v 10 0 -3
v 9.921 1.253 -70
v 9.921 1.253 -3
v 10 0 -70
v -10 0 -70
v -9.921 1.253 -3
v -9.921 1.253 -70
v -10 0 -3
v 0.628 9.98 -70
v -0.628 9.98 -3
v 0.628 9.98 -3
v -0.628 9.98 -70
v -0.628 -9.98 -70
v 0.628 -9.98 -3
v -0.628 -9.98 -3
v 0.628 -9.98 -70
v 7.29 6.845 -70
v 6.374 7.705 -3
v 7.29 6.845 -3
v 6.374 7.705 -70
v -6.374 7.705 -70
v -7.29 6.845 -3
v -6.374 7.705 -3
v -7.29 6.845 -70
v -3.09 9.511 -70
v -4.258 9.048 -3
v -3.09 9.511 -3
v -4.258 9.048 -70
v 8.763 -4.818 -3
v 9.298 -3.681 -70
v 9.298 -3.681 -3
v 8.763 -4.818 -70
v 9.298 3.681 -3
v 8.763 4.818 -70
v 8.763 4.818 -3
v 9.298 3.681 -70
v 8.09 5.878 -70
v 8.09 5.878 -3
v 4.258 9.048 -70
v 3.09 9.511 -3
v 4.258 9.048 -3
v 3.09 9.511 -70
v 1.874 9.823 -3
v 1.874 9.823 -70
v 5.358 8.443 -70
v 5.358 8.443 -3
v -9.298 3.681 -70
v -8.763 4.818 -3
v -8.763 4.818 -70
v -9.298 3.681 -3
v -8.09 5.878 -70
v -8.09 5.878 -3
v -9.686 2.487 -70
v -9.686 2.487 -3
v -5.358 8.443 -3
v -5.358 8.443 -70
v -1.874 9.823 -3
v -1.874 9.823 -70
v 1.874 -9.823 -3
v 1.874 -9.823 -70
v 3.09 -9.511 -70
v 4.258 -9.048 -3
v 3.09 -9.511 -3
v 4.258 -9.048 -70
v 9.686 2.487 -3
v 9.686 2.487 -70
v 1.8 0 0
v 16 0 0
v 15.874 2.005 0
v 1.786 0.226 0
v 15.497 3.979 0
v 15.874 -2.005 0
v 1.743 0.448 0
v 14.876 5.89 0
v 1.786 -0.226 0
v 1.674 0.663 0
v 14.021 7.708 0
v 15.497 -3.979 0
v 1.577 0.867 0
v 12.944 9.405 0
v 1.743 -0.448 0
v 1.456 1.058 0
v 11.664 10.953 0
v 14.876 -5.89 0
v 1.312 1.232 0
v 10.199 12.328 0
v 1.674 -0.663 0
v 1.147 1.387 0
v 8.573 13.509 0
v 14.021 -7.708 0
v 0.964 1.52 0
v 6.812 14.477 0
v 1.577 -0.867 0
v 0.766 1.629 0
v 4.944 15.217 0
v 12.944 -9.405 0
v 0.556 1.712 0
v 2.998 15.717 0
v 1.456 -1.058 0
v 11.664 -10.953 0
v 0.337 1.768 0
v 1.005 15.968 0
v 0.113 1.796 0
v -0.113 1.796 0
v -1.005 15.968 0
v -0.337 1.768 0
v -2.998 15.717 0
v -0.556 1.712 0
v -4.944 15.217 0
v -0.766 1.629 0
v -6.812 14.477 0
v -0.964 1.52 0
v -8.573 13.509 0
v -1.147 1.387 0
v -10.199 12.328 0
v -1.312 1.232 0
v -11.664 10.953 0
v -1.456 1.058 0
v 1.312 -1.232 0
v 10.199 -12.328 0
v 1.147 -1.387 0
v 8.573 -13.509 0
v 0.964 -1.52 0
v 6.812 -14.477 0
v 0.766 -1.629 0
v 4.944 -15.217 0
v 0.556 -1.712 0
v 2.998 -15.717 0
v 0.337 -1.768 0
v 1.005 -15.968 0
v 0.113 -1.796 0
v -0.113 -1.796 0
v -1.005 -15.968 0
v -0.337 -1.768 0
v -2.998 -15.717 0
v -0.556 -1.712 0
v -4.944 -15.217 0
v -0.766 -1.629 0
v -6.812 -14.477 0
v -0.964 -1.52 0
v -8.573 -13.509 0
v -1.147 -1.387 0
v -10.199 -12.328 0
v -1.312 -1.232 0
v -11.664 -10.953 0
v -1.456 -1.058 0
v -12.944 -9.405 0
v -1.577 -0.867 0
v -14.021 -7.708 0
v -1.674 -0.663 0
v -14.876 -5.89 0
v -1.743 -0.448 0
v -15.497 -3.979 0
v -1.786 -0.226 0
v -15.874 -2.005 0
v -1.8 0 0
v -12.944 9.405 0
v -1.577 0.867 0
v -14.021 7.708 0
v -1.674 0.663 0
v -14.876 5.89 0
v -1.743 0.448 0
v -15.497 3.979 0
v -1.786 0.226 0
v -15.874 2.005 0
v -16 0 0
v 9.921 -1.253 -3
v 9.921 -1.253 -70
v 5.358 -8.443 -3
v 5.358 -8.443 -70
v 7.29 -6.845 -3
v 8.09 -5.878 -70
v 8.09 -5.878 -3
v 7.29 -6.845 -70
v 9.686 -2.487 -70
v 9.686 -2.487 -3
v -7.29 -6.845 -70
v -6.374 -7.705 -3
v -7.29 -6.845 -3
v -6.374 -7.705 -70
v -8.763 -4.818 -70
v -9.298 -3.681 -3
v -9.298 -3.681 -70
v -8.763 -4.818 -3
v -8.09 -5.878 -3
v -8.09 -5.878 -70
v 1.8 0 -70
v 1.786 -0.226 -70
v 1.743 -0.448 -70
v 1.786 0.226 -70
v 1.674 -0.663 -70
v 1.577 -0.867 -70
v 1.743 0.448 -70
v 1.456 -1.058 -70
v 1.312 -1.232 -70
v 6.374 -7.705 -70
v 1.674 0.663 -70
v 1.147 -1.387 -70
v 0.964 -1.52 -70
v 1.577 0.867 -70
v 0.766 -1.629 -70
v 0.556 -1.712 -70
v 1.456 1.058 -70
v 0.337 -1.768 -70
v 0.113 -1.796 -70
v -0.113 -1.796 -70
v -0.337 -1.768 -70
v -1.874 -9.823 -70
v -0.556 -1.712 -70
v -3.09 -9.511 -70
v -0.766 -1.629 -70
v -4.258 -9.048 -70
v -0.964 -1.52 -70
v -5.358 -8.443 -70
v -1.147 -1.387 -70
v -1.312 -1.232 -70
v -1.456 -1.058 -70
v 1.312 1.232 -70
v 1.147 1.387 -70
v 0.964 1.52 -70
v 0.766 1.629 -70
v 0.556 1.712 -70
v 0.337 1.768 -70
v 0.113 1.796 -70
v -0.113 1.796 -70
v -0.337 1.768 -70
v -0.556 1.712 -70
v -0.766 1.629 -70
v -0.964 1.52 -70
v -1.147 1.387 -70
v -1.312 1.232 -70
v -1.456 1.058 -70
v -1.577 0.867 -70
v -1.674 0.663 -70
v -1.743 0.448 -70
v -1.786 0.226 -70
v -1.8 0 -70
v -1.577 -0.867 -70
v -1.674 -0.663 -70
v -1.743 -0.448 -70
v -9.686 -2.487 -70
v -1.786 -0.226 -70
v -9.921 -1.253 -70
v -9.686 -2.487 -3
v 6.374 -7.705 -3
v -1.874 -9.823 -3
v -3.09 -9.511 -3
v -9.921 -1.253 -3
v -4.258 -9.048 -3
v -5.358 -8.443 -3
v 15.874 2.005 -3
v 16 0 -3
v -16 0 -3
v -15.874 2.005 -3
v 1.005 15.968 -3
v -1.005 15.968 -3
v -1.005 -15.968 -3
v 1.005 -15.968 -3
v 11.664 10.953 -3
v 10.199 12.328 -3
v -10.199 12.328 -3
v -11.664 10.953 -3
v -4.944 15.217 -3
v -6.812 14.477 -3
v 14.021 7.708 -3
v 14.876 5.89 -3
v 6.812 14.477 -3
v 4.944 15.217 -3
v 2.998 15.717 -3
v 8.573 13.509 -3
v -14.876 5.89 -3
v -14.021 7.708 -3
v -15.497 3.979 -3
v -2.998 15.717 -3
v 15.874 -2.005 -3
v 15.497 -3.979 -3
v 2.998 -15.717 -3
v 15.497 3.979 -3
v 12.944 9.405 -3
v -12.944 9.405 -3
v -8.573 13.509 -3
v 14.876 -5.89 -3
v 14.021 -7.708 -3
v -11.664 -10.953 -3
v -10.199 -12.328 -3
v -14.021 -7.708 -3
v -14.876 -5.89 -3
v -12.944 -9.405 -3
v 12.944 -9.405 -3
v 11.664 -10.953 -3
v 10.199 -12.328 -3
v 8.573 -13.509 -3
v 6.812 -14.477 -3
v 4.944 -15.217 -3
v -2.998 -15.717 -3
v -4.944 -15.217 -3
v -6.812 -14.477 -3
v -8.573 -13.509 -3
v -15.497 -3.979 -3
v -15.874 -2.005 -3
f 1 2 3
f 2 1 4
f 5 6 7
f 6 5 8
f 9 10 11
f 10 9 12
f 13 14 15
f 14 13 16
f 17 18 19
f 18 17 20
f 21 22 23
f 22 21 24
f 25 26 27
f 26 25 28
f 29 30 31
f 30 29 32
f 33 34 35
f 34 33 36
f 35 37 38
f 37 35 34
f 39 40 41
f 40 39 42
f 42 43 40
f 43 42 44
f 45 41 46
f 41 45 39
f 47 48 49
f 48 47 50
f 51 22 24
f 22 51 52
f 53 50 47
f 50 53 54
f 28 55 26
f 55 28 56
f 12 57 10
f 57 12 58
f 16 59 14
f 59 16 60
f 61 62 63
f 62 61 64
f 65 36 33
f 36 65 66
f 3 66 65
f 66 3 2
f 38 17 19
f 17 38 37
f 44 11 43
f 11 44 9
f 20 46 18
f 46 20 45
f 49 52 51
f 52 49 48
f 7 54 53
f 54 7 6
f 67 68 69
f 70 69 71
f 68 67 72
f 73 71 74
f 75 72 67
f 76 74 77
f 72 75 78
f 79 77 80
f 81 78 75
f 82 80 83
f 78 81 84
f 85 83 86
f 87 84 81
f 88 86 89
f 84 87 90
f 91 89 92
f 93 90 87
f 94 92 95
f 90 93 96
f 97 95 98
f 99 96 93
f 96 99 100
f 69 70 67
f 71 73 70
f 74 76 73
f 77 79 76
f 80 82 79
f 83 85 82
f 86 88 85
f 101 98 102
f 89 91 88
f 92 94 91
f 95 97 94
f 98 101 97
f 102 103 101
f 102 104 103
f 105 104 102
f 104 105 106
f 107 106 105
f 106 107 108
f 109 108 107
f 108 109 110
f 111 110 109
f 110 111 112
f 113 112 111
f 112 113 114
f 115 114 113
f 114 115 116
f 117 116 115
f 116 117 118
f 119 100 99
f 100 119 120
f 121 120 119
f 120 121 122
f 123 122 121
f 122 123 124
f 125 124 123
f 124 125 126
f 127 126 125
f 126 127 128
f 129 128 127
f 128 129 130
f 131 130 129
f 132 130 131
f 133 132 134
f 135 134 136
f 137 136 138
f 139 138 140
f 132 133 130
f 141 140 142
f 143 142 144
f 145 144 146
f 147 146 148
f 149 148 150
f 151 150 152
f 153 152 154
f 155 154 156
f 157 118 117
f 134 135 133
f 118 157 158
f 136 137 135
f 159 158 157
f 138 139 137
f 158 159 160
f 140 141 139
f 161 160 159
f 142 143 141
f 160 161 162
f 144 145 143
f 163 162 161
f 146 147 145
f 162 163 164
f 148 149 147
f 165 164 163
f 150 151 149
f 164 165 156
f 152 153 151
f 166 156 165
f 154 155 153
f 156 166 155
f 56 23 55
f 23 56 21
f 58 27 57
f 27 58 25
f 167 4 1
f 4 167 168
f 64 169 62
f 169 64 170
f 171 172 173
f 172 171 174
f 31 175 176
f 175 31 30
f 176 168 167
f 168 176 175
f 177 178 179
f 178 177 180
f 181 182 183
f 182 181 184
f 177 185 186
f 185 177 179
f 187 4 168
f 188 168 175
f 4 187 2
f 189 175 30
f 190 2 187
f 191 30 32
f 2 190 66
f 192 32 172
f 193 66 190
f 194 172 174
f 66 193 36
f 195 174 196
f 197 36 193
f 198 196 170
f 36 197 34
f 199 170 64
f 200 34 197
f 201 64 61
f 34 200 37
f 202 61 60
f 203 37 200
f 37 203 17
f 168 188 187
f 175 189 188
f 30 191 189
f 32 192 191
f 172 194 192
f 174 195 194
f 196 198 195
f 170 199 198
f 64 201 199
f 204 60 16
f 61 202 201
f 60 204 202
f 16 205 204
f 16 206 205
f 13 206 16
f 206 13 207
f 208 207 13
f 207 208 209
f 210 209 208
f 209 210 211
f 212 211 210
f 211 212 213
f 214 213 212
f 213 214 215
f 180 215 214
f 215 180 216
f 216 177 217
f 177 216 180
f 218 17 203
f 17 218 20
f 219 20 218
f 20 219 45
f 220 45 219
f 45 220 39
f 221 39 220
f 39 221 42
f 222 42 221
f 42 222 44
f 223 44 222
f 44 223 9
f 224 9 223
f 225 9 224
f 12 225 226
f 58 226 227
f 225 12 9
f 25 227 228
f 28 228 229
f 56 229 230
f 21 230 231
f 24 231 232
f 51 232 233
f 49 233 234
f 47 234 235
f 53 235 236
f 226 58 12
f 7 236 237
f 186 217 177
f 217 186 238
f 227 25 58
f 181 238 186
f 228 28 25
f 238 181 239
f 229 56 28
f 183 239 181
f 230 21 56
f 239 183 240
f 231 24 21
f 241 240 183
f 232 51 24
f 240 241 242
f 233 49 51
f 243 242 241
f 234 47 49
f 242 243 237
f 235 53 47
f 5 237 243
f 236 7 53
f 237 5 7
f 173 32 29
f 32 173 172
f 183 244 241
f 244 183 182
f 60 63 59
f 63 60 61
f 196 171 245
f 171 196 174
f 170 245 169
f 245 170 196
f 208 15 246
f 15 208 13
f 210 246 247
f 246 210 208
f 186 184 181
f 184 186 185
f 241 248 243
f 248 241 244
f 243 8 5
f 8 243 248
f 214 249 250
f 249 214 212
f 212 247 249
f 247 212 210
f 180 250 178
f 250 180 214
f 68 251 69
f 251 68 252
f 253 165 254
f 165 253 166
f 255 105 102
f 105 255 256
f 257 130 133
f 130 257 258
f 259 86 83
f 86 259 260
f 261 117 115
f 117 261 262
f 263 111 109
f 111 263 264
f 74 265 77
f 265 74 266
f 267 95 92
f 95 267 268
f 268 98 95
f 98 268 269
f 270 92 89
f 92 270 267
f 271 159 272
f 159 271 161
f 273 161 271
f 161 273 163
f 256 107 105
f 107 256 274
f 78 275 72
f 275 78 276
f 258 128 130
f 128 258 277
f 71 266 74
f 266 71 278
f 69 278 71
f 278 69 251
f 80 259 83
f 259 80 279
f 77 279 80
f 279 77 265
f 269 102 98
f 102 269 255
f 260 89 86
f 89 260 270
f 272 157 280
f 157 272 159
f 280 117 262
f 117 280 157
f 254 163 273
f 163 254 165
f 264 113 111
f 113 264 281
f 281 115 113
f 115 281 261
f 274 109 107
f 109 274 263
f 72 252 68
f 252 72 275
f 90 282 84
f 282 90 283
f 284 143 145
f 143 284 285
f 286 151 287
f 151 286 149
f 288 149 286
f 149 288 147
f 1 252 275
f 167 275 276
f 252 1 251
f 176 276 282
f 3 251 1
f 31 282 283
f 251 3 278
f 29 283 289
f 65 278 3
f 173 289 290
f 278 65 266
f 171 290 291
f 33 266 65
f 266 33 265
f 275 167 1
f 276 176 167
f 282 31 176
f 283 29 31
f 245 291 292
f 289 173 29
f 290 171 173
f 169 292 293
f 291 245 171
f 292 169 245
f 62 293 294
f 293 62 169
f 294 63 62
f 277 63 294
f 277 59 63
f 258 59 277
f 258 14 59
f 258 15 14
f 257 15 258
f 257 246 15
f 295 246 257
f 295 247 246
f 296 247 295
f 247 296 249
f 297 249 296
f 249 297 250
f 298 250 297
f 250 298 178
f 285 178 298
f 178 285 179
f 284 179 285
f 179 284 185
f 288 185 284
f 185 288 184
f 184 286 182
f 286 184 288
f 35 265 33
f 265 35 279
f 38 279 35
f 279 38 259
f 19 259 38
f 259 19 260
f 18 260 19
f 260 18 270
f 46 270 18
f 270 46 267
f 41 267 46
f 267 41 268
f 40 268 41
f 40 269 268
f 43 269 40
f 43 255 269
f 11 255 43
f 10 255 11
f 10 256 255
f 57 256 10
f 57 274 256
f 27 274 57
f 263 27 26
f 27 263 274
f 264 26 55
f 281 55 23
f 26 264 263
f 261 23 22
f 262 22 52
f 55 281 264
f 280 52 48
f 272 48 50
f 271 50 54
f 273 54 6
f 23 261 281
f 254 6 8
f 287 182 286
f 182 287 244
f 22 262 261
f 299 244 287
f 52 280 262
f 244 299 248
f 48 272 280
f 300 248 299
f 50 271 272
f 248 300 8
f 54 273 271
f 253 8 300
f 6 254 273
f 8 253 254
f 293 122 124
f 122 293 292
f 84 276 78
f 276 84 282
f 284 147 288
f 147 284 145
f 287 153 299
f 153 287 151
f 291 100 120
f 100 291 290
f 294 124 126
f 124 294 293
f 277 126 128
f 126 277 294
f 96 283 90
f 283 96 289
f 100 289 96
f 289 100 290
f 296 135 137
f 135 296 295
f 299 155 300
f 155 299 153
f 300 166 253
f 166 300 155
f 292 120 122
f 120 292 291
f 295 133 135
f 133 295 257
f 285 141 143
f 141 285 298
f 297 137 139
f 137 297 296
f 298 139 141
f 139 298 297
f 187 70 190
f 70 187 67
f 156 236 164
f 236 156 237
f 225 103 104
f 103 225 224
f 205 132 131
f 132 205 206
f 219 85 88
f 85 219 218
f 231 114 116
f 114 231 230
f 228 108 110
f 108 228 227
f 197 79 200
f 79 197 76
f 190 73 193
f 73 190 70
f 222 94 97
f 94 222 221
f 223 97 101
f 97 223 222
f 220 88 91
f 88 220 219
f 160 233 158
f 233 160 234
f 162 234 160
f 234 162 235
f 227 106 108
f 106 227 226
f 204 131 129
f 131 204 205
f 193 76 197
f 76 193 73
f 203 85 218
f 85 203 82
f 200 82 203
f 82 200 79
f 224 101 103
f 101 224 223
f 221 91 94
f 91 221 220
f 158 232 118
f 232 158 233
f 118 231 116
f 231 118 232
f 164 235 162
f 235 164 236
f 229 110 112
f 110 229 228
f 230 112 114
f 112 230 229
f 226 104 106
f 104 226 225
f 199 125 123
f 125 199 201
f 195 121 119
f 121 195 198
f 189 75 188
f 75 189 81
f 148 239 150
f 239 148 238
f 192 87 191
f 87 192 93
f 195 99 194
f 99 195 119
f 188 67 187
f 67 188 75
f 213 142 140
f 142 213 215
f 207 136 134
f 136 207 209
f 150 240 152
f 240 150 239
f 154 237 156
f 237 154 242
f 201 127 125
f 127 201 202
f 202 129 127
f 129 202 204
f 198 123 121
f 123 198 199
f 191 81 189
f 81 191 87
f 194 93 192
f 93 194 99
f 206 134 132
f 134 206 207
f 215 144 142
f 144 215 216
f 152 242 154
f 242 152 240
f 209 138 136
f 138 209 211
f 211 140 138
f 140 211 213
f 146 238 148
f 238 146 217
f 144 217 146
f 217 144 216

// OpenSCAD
$fn = 50;


difference() {
	union() {
		translate(v = [0, 0, -70.0000000000]) {
			cylinder(h = 70, r = 10.0000000000);
		}
		translate(v = [0, 0, -3.0000000000]) {
			cylinder(h = 3, r = 16.0000000000);
		}
	}
	union() {
		#translate(v = [0, 0, -70]) {
			cylinder(h = 70, r = 1.8000000000);
		}
	}
}
